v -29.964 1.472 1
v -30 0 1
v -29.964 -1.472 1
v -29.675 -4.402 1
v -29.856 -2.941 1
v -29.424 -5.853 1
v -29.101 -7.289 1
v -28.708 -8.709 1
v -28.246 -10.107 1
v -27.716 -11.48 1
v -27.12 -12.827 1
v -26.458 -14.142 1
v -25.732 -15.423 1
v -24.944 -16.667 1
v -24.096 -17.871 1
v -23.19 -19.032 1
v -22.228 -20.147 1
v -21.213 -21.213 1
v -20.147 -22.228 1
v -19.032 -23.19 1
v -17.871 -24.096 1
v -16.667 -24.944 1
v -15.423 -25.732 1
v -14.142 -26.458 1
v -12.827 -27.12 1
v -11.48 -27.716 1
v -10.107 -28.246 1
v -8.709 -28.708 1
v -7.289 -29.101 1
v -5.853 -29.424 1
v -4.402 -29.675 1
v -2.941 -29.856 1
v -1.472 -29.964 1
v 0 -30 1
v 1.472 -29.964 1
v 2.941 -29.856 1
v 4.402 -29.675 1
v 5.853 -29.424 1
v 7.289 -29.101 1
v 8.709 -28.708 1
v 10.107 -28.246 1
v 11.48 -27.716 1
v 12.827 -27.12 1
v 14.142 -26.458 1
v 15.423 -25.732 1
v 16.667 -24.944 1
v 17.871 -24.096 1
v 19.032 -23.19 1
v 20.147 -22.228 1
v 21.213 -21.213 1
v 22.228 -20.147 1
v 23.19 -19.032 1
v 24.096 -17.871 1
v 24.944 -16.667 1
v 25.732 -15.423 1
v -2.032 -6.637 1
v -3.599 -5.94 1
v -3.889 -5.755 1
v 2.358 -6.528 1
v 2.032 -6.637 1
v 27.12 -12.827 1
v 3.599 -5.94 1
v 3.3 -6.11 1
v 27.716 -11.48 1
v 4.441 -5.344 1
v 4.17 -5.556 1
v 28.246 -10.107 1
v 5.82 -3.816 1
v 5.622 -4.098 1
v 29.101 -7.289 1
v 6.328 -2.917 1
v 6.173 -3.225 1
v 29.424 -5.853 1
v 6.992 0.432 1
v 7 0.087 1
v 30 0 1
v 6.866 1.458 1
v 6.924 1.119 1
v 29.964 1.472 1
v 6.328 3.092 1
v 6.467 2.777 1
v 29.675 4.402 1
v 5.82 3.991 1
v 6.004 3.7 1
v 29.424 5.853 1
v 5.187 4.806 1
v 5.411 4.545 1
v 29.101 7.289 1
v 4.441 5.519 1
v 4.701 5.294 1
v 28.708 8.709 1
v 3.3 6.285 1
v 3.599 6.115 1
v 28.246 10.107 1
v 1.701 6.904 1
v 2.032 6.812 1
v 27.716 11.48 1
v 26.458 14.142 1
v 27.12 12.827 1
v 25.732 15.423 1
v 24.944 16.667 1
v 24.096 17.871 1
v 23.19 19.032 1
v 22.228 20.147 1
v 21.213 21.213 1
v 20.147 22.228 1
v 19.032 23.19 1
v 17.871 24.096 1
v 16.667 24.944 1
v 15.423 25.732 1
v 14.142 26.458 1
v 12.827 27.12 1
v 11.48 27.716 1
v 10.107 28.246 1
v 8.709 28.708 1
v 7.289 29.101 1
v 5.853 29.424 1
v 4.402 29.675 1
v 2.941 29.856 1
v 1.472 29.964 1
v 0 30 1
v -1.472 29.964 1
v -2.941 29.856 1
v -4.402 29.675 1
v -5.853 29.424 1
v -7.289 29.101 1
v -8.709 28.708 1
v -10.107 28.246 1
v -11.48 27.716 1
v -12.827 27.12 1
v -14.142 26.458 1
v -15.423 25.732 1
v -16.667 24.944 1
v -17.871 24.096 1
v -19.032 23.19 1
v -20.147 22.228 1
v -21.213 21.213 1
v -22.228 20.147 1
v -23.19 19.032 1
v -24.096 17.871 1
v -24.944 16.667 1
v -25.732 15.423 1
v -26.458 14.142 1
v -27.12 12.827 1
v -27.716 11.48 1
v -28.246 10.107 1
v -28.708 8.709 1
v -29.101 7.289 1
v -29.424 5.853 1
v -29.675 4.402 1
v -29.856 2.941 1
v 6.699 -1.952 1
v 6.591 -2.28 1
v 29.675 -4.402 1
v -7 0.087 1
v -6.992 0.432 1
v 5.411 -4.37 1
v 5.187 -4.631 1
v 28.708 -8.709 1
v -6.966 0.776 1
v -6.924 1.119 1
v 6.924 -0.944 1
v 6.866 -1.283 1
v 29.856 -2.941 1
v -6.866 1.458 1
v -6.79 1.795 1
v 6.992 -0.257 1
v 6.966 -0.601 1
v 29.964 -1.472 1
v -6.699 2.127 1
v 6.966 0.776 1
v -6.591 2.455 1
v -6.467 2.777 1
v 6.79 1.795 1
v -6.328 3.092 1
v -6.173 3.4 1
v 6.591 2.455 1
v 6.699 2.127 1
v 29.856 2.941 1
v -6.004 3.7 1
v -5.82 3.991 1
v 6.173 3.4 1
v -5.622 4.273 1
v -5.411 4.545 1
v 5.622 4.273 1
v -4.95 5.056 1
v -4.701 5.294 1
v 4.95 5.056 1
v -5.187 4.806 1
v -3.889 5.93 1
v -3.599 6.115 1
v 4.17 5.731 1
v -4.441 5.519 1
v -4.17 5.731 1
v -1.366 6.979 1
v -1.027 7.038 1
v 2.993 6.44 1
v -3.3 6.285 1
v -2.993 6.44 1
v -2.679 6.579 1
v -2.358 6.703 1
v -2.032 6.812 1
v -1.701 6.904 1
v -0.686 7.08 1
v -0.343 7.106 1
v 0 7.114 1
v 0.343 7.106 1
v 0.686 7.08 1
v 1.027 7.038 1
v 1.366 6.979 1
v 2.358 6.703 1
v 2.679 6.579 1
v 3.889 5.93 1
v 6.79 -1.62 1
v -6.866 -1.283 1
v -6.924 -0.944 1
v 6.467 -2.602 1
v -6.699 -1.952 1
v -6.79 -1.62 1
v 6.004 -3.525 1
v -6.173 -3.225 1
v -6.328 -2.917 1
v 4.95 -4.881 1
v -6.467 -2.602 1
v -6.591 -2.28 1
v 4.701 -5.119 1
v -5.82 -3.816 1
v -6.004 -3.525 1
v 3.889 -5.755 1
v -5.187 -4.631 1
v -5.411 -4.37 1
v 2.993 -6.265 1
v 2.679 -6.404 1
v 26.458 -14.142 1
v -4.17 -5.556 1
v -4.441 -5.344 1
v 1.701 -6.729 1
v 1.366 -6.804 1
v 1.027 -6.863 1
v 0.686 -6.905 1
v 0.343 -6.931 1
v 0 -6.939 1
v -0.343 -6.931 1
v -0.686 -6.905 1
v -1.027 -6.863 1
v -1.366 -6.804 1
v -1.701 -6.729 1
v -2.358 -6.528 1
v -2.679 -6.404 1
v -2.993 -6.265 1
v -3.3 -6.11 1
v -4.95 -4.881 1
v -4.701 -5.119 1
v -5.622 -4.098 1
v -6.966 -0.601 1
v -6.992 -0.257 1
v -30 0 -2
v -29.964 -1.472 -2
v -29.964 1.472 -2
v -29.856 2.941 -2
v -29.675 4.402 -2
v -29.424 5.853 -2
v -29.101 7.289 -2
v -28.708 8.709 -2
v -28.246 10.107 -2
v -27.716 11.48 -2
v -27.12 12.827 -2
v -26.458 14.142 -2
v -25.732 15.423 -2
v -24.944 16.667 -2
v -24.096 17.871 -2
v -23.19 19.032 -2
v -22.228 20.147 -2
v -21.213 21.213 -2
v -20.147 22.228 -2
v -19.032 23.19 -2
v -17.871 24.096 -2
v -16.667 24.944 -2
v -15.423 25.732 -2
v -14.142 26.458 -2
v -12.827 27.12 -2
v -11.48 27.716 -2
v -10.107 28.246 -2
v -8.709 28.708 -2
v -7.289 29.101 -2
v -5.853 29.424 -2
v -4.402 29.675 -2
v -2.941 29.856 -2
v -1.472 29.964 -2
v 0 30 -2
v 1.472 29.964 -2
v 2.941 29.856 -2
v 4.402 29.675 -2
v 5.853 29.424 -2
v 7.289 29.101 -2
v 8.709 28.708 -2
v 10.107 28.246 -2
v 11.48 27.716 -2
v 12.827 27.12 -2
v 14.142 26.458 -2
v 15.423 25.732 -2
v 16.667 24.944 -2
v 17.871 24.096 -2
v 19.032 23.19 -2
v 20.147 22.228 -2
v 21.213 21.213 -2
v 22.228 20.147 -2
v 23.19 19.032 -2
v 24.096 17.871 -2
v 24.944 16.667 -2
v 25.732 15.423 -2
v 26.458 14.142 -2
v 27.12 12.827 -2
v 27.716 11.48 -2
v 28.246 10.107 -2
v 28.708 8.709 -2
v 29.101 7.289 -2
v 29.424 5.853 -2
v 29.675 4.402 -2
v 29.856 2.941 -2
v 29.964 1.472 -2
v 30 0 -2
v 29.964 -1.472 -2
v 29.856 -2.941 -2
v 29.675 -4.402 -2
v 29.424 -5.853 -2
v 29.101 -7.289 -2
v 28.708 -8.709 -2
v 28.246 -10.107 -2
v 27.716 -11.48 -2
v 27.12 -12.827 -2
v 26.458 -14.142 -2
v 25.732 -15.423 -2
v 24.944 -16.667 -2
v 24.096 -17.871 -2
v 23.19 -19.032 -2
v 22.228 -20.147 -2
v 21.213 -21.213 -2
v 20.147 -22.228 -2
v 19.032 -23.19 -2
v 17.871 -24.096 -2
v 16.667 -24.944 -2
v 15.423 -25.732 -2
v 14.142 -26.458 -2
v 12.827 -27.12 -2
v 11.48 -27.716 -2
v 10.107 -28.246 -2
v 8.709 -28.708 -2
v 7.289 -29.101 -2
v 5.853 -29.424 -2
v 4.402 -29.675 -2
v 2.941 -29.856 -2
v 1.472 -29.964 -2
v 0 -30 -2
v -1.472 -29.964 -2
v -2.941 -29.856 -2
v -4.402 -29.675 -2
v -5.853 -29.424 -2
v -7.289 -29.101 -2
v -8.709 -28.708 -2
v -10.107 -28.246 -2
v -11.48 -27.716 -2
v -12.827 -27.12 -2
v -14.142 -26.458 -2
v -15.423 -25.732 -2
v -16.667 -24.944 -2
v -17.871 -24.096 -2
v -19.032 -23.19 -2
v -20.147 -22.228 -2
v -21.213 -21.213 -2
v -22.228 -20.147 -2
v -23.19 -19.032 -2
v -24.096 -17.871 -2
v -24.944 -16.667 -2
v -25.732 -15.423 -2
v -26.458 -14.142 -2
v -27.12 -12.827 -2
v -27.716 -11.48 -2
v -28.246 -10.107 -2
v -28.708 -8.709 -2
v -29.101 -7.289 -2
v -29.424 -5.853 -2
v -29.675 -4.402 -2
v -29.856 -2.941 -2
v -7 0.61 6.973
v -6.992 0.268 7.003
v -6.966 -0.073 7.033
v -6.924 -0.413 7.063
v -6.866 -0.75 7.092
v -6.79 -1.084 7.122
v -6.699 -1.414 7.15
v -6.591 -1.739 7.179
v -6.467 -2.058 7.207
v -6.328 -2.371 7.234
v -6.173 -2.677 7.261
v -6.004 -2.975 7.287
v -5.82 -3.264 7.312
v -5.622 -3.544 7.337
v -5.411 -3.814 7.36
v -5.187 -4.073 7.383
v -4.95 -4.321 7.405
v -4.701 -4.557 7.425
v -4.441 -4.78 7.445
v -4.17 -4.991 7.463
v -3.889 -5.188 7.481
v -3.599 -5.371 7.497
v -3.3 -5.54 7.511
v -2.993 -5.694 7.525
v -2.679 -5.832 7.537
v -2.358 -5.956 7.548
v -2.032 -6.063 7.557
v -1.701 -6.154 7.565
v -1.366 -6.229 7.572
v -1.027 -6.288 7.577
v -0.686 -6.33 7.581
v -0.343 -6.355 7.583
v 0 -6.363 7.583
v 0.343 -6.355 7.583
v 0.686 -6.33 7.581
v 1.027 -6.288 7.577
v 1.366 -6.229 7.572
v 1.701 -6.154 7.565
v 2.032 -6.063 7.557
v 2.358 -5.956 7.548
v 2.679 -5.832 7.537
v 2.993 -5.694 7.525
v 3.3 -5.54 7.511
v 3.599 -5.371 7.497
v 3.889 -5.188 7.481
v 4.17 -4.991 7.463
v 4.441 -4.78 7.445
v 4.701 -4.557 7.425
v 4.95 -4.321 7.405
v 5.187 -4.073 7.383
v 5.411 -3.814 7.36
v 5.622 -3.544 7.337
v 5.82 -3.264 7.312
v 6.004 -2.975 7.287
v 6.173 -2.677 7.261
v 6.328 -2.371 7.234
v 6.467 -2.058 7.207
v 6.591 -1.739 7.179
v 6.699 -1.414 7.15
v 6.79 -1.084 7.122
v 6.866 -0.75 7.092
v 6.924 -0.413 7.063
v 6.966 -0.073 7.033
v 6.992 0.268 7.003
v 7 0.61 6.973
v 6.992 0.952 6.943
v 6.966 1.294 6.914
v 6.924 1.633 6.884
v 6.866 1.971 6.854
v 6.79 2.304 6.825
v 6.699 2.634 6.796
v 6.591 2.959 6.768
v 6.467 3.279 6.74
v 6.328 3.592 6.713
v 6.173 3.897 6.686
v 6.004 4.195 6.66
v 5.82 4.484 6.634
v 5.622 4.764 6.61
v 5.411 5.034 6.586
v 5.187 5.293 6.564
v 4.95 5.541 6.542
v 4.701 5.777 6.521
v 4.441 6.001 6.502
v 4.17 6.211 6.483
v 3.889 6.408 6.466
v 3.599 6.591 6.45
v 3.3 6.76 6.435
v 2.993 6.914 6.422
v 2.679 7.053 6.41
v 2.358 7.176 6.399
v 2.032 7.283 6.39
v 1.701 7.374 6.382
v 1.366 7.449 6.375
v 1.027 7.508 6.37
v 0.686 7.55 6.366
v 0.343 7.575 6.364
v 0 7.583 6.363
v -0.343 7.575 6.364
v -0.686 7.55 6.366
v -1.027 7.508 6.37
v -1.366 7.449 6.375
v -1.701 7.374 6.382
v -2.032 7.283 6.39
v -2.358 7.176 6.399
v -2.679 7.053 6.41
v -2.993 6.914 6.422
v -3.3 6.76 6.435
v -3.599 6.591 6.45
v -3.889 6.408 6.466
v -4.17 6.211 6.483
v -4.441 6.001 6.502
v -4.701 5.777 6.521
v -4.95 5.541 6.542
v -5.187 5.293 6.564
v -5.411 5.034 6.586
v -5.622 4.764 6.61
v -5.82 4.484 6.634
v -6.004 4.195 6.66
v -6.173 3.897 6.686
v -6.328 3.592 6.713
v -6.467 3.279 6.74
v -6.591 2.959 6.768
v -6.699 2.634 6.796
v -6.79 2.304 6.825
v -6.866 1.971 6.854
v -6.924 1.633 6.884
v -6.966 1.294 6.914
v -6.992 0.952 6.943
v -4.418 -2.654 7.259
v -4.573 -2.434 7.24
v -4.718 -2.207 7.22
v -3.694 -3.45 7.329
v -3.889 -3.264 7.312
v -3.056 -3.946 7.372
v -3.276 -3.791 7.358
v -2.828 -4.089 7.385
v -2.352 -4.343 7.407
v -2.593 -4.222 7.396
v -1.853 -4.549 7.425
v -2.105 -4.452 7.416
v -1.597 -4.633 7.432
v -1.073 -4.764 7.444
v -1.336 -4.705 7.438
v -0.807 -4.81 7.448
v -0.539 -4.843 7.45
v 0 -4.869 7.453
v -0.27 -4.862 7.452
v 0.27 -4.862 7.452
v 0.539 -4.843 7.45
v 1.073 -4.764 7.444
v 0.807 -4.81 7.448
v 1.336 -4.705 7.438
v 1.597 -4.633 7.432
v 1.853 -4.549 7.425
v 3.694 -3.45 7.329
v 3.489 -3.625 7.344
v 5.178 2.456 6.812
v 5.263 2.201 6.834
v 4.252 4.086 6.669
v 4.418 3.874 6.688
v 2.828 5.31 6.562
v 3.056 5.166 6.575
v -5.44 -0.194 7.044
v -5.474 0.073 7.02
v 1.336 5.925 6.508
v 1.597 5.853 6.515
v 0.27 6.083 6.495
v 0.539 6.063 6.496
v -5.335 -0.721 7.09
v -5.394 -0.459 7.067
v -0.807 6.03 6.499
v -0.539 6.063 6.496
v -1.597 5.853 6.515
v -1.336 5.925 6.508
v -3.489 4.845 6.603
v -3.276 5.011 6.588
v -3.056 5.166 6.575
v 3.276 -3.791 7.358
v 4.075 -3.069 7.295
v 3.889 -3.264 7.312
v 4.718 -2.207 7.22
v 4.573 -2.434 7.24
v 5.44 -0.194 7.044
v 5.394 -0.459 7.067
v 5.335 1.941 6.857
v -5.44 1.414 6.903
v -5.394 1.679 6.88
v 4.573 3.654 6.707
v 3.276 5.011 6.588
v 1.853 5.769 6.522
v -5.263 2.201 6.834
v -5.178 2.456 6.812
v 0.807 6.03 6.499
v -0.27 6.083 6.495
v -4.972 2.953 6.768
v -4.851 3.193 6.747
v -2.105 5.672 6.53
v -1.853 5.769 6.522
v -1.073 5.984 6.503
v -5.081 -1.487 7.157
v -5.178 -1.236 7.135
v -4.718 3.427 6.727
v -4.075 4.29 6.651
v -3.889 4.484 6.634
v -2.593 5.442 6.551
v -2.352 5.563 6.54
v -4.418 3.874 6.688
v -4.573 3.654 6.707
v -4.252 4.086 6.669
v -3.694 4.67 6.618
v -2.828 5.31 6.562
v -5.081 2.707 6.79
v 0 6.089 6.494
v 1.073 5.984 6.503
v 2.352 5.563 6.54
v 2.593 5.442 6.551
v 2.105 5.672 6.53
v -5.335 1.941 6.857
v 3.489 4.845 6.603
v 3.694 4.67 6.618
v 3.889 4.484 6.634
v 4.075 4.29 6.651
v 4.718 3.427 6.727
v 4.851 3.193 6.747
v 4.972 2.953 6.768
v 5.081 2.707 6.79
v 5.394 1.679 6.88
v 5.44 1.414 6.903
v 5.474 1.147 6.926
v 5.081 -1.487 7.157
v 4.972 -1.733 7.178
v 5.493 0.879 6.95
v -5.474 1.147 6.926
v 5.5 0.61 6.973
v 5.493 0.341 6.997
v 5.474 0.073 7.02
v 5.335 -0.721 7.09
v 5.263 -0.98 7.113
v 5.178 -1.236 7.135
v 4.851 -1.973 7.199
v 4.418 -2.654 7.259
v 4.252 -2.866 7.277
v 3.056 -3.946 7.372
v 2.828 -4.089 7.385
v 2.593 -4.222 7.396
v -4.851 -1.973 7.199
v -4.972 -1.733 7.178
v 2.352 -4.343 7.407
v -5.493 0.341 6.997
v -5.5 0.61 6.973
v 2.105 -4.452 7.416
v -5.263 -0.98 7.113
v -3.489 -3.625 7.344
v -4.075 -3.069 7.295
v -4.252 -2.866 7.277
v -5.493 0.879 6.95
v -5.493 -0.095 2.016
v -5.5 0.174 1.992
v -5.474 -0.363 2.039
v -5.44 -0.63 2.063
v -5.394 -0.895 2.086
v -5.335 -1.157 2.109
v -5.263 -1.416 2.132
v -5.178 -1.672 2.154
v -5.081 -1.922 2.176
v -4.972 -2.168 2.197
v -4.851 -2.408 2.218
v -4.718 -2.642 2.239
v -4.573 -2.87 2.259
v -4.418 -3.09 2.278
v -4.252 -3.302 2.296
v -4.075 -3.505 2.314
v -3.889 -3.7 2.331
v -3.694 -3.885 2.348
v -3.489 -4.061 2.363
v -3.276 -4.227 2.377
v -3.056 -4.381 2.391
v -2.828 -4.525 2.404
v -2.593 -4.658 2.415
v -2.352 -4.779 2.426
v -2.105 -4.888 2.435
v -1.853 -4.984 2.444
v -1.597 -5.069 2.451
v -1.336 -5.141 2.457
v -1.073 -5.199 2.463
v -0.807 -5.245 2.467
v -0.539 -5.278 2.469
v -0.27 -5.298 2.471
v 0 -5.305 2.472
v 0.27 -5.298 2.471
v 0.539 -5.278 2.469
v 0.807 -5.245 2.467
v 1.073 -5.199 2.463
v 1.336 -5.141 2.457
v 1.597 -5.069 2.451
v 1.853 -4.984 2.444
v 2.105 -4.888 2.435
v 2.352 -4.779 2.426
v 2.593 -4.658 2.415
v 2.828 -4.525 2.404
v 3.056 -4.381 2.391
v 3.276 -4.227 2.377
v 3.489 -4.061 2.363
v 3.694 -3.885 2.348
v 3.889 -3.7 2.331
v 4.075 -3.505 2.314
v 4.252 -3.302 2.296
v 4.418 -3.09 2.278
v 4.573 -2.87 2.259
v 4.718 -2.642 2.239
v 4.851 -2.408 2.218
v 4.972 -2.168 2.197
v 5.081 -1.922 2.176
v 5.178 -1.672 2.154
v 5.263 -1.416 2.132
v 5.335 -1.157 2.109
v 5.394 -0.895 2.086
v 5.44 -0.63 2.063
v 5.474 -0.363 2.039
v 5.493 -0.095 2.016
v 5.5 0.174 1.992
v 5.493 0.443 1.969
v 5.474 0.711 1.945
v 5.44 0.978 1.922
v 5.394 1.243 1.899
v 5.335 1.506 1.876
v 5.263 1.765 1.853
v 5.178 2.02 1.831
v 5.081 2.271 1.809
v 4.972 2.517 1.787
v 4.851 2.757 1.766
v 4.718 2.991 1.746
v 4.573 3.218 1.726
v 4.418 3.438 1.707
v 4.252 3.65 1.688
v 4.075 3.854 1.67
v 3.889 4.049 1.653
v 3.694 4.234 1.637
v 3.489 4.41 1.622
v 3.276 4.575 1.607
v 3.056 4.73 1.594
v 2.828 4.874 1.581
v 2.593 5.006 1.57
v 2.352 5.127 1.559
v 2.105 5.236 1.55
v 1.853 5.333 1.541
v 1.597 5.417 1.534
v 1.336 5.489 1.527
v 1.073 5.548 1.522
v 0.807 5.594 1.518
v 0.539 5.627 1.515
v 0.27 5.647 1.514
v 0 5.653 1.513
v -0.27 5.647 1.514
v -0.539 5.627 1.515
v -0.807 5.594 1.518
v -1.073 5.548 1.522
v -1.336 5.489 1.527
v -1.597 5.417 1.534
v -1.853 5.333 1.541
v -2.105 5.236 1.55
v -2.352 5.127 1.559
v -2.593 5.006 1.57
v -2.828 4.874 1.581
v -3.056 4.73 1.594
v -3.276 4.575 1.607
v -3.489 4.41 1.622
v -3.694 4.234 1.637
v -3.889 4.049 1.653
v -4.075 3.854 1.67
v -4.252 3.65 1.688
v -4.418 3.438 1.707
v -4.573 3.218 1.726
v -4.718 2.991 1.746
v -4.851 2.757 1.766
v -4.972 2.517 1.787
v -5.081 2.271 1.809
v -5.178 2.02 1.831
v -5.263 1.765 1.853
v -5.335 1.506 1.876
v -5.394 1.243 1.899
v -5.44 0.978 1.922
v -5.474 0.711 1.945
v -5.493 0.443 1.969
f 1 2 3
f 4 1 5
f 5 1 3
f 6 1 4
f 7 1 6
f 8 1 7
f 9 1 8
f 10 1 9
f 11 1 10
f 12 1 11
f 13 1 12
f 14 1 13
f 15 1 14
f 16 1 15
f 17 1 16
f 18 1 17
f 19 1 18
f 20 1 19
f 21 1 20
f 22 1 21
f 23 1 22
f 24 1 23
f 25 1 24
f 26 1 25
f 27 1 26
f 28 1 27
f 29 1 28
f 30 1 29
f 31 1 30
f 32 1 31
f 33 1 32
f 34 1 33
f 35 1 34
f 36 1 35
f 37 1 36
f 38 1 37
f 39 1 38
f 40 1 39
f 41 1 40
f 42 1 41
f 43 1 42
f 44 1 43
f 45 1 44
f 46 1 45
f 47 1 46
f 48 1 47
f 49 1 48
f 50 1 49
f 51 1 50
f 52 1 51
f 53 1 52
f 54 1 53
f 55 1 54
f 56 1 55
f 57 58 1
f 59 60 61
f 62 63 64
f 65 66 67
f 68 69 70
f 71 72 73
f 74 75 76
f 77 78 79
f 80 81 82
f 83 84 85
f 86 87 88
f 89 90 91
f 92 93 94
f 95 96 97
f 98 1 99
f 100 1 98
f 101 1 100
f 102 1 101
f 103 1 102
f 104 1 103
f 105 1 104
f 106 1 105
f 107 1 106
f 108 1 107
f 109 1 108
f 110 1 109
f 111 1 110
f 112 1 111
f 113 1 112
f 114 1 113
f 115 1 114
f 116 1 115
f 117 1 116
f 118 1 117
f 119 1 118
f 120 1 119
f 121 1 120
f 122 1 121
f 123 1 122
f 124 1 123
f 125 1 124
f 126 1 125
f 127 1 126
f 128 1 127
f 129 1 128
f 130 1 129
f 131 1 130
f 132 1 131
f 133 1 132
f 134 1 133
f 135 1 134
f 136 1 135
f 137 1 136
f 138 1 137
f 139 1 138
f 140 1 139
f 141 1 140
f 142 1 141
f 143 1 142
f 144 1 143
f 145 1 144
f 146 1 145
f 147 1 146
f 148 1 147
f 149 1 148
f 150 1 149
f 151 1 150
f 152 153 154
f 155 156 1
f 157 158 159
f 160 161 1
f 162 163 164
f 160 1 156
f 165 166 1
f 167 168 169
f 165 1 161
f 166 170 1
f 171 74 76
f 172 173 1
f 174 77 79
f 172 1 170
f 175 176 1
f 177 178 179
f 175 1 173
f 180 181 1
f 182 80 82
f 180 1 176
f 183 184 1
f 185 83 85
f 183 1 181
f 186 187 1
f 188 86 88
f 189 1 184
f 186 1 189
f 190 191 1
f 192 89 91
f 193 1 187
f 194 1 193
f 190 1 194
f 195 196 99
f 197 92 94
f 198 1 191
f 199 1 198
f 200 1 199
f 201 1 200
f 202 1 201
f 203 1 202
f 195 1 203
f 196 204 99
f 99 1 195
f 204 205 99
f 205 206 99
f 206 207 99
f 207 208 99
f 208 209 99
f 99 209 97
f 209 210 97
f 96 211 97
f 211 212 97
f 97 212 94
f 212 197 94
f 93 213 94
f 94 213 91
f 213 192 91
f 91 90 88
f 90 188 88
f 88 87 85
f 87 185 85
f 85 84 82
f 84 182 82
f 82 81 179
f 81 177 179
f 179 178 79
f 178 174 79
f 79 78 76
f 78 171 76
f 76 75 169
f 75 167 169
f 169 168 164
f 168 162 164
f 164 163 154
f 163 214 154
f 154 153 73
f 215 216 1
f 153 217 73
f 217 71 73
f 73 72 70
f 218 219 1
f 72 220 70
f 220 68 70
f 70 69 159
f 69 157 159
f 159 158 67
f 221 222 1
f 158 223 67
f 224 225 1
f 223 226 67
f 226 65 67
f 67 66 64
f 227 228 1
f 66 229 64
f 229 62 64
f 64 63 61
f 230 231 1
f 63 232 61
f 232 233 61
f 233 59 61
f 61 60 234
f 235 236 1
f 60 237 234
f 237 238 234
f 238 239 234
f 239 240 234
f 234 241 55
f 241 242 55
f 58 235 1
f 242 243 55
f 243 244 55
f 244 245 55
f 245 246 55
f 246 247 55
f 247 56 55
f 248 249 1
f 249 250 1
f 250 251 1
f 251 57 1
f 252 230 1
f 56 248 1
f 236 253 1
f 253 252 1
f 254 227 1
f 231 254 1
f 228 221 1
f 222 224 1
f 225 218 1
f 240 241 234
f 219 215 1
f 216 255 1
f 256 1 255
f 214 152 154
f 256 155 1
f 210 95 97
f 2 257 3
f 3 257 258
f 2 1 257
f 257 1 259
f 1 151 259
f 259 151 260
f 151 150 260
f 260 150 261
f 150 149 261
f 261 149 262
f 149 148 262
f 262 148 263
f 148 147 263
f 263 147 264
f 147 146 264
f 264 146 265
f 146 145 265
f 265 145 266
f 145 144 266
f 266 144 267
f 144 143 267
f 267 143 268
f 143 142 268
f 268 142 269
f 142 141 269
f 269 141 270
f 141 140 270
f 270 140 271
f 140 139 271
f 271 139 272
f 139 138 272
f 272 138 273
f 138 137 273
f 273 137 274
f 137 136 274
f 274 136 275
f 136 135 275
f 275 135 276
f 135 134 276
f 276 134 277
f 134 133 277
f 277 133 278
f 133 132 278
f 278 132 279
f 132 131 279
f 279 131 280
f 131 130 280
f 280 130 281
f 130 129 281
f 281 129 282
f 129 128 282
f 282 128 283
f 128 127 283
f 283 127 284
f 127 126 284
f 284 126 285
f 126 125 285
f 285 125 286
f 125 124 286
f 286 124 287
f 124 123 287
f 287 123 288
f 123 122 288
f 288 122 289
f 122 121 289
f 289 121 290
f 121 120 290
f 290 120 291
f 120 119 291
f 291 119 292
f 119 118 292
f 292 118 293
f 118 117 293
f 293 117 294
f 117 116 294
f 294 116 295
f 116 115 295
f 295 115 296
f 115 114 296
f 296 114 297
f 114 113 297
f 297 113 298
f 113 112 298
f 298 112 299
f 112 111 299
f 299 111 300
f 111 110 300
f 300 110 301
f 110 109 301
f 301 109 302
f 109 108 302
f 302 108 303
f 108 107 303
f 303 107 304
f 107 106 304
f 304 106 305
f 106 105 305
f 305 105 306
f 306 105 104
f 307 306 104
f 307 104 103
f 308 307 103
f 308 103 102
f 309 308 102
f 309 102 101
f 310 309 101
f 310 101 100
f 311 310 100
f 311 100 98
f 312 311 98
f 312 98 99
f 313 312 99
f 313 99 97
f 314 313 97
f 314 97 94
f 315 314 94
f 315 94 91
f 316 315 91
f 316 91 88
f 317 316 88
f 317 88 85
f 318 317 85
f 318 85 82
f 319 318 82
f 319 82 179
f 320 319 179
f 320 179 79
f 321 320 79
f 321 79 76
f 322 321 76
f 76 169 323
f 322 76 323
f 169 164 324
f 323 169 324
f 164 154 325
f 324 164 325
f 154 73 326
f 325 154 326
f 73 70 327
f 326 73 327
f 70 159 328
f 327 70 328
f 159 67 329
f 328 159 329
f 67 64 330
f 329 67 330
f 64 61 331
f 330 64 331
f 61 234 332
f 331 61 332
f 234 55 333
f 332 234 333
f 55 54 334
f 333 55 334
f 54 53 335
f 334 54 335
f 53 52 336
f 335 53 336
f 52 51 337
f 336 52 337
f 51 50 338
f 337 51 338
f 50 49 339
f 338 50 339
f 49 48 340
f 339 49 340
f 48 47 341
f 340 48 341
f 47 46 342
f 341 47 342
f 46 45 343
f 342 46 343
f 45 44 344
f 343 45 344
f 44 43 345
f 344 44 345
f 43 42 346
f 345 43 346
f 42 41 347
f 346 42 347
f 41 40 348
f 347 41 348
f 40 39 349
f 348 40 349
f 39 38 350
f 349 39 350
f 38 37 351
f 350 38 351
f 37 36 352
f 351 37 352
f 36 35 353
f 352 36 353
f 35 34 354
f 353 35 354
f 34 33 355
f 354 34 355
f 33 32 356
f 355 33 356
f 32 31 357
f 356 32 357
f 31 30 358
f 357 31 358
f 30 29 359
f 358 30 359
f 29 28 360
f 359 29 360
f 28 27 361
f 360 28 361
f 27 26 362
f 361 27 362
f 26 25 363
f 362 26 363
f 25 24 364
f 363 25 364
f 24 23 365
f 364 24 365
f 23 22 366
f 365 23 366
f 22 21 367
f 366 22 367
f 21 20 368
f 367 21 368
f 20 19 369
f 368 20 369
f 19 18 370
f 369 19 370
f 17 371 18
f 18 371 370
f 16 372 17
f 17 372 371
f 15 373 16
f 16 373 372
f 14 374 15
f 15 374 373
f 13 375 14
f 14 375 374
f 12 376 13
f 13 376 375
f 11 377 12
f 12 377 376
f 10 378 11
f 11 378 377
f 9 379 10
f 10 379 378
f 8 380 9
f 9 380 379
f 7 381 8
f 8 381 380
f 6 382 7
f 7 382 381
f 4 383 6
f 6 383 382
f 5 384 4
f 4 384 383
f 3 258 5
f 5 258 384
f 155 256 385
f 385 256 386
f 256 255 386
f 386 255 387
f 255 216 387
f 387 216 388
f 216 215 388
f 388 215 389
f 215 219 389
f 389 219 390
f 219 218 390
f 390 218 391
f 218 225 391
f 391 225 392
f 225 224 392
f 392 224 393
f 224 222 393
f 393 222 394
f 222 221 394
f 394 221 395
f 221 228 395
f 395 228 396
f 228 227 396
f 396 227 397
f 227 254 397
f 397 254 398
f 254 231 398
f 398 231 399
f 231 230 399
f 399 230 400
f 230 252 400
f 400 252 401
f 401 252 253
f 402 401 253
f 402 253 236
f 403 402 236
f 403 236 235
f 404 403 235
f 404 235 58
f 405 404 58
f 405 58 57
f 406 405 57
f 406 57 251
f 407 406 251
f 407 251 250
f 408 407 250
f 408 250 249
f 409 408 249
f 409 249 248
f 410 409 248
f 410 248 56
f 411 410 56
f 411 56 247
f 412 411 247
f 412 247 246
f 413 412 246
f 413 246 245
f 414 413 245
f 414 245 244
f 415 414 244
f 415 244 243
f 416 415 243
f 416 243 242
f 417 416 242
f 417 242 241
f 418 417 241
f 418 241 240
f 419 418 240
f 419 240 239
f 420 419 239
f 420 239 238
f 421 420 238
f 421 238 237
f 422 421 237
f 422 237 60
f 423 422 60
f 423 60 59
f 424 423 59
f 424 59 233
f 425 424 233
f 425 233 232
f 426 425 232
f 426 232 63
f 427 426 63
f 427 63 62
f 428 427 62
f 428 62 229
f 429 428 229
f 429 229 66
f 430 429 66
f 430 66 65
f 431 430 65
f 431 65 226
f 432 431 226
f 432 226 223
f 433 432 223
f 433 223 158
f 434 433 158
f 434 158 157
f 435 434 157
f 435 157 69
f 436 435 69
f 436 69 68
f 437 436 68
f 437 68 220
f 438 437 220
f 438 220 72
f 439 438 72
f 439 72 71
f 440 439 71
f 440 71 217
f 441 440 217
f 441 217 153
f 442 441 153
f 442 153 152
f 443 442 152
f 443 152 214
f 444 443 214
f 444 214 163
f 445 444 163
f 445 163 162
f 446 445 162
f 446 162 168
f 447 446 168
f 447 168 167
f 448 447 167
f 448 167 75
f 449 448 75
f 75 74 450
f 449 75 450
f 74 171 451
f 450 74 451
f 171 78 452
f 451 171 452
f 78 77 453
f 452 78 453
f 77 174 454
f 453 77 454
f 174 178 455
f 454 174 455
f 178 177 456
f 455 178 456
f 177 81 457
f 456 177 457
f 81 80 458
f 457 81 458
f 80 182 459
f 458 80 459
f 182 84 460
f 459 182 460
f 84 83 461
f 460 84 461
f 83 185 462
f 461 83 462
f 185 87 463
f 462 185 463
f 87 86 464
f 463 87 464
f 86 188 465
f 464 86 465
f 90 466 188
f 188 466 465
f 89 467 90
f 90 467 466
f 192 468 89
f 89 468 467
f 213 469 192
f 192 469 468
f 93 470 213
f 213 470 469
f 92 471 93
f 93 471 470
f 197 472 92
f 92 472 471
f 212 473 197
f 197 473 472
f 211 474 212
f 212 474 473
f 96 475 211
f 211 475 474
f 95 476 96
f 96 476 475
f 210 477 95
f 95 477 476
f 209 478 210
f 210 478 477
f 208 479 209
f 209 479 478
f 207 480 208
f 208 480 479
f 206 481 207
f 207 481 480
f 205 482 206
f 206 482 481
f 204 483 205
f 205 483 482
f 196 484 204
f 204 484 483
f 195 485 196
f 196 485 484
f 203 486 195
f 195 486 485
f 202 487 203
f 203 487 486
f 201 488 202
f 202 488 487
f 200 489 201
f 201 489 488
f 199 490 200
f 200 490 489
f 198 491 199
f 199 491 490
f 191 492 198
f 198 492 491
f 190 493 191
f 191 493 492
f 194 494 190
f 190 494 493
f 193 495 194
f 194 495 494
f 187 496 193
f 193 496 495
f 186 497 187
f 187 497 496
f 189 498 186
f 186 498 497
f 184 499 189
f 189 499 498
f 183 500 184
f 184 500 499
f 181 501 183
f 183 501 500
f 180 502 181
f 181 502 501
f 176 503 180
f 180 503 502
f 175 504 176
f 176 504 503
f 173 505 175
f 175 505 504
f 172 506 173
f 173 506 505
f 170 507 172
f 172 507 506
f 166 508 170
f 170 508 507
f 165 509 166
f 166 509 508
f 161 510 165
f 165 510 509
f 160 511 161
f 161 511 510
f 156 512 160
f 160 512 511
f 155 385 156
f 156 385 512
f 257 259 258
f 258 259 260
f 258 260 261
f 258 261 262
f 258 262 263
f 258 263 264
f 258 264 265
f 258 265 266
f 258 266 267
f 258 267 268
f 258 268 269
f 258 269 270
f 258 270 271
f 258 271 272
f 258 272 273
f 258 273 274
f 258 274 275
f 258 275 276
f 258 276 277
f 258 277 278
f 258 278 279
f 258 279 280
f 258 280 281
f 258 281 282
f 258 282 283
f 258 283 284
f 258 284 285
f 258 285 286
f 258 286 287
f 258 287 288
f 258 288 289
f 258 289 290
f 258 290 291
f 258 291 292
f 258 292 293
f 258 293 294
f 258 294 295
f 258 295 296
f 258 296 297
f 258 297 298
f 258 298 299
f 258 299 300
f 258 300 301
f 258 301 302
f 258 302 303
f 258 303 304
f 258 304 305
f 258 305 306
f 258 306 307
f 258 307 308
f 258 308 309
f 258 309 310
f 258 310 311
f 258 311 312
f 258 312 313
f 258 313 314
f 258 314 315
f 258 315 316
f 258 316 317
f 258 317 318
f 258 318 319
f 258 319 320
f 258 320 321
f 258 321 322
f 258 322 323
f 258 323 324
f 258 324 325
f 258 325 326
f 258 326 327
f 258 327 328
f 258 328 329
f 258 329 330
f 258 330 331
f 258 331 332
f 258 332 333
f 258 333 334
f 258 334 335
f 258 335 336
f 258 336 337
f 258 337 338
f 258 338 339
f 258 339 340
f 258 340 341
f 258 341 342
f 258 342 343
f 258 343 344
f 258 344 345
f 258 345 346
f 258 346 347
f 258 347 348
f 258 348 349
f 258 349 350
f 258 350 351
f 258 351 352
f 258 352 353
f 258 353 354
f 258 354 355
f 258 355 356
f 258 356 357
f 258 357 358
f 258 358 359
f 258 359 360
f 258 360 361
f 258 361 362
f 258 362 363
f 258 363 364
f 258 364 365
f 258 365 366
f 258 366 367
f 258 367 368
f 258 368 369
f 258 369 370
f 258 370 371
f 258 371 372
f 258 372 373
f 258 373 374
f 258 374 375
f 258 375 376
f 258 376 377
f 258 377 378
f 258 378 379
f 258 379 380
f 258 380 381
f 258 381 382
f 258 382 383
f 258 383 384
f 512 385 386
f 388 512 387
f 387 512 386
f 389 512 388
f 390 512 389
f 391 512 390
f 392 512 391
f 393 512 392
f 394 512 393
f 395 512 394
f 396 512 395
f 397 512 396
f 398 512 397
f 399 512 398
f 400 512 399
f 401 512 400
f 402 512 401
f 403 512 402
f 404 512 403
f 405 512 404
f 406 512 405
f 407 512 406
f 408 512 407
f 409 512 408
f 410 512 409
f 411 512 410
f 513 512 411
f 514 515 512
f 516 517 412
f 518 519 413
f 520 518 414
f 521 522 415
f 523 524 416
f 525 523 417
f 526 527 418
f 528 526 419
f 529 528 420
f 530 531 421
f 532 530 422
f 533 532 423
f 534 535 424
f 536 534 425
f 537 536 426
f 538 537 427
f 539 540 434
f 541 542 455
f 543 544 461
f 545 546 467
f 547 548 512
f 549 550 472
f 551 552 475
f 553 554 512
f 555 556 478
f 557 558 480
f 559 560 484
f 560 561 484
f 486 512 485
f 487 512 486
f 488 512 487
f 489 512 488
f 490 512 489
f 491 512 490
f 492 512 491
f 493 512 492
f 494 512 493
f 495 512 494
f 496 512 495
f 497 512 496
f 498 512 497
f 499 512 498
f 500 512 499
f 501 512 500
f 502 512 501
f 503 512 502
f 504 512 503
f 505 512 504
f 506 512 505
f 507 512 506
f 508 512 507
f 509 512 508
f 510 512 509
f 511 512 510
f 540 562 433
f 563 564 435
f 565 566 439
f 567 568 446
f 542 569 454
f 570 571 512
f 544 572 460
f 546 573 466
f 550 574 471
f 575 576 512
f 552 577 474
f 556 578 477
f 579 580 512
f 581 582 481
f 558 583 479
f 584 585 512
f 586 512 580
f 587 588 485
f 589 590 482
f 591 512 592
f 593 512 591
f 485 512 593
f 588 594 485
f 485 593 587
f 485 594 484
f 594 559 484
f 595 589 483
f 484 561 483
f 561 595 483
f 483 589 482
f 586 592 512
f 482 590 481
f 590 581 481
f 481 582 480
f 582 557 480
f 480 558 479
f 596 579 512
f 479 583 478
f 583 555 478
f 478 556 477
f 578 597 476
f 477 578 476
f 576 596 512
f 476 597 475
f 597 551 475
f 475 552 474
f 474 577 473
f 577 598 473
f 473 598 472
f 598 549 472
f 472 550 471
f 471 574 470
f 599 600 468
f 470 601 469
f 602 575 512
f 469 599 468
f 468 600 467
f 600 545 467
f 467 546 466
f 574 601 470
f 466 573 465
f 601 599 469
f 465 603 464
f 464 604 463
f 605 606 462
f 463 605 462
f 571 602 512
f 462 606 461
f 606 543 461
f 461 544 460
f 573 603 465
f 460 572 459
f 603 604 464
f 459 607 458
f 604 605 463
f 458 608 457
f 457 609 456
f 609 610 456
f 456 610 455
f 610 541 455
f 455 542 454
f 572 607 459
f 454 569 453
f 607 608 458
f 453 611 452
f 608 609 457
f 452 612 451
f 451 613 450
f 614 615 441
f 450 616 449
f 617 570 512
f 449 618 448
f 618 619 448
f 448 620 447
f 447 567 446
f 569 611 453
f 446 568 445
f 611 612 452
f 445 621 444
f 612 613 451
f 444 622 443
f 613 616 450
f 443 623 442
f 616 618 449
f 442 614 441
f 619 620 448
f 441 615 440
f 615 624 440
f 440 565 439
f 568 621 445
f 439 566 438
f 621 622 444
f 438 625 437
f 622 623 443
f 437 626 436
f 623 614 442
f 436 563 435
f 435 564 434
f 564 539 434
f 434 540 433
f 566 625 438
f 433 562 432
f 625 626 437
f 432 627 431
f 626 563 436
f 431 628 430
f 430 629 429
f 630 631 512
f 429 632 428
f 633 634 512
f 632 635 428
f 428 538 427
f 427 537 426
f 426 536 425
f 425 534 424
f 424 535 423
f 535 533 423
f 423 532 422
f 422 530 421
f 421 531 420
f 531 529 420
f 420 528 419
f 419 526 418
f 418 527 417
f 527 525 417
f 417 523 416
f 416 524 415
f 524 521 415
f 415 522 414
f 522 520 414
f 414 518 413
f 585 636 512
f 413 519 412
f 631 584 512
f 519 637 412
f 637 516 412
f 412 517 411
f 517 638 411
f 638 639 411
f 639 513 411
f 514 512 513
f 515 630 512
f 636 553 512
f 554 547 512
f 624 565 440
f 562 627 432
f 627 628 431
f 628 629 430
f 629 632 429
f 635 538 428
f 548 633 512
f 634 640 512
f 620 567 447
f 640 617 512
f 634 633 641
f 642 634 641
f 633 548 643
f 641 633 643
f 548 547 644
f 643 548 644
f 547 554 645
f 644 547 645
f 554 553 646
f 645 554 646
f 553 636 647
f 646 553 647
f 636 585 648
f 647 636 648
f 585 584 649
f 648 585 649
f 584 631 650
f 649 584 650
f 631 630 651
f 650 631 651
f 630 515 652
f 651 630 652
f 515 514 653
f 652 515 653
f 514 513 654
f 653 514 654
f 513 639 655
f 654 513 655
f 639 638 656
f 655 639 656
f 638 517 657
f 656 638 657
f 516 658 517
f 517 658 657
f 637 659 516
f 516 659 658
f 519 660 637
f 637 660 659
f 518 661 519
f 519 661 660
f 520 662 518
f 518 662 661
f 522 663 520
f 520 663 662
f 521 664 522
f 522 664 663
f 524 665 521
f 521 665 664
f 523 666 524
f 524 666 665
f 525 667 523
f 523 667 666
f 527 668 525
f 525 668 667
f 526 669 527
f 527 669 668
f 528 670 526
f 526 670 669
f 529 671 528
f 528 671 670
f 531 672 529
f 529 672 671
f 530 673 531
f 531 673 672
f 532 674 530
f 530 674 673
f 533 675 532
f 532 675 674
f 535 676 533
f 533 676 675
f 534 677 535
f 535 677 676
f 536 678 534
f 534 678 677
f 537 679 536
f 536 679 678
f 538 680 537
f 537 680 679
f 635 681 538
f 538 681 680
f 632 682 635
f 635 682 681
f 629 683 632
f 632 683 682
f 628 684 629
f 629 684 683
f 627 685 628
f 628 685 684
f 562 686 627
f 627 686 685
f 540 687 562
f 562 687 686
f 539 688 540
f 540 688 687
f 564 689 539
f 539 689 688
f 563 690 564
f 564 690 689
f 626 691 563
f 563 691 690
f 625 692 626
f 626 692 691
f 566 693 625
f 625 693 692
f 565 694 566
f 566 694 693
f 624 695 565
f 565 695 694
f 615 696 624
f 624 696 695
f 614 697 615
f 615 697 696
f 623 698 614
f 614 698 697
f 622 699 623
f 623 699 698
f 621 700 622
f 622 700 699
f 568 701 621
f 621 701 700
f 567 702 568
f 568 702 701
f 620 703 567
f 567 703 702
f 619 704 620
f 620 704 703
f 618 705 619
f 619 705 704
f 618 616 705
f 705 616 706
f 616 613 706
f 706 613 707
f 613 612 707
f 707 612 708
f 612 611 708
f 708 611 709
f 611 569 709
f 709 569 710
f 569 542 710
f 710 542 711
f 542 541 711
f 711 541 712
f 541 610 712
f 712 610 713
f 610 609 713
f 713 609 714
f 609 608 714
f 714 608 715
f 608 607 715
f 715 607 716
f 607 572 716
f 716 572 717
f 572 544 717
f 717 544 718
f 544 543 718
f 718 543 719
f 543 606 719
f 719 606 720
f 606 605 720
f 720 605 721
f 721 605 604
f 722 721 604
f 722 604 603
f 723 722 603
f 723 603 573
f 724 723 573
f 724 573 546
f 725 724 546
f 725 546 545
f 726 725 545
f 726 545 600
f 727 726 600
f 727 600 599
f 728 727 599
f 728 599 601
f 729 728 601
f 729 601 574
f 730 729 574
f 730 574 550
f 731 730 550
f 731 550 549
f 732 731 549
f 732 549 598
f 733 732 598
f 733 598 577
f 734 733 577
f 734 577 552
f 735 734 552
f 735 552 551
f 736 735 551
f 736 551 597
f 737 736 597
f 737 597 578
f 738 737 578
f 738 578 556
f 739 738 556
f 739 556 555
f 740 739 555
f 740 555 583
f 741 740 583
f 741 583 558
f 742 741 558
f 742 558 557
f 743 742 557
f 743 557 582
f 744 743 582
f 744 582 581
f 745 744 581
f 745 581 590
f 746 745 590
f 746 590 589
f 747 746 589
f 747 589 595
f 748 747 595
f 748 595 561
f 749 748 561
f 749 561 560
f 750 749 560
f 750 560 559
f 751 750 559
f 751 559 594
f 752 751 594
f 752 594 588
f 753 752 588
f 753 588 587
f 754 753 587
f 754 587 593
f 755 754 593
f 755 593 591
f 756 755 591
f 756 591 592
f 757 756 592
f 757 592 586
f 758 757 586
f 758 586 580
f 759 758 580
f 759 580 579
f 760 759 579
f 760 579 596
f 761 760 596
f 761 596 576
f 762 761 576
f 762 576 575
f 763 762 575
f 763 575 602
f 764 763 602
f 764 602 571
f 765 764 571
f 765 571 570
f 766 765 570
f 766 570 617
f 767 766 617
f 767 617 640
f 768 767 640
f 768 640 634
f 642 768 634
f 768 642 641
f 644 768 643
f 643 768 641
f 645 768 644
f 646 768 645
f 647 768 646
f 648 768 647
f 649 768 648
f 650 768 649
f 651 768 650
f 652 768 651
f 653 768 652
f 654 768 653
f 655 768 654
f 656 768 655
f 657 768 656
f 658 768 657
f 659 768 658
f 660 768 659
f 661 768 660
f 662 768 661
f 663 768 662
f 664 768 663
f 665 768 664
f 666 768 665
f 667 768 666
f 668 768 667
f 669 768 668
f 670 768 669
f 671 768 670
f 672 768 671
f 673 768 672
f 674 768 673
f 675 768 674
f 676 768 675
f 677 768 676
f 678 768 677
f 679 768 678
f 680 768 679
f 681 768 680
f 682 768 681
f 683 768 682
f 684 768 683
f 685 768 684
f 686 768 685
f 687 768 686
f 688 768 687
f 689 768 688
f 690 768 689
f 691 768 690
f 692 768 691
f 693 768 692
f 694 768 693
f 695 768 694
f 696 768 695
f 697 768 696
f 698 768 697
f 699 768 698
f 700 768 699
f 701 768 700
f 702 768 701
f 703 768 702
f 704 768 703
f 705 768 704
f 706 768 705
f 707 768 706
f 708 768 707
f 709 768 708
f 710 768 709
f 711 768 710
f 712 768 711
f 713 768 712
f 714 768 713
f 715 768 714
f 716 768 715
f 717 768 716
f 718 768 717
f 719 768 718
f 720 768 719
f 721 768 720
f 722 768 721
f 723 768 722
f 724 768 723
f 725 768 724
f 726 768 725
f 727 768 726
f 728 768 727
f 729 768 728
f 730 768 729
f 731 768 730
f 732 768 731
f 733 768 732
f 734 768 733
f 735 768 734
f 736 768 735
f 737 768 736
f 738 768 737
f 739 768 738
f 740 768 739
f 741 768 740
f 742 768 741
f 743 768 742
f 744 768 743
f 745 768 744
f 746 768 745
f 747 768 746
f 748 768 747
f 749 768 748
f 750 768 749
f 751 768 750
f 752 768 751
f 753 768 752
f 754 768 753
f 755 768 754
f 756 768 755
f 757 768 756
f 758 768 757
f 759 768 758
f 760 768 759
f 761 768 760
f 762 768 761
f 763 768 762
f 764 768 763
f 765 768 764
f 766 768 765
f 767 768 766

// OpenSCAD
$fn=128;


rotate([-5, 0, 0])
union() {
  translate([0, 0, 2])
  difference() {
    difference() {
      cylinder(h=5, r=7);
      cylinder(h=5, r=5.5);
    }
  }

  cylinder(h=2, r=7);

  rotate([5, 0, 0])
  translate([0, 0, -2])
  cylinder(h=3, r=30);
}
